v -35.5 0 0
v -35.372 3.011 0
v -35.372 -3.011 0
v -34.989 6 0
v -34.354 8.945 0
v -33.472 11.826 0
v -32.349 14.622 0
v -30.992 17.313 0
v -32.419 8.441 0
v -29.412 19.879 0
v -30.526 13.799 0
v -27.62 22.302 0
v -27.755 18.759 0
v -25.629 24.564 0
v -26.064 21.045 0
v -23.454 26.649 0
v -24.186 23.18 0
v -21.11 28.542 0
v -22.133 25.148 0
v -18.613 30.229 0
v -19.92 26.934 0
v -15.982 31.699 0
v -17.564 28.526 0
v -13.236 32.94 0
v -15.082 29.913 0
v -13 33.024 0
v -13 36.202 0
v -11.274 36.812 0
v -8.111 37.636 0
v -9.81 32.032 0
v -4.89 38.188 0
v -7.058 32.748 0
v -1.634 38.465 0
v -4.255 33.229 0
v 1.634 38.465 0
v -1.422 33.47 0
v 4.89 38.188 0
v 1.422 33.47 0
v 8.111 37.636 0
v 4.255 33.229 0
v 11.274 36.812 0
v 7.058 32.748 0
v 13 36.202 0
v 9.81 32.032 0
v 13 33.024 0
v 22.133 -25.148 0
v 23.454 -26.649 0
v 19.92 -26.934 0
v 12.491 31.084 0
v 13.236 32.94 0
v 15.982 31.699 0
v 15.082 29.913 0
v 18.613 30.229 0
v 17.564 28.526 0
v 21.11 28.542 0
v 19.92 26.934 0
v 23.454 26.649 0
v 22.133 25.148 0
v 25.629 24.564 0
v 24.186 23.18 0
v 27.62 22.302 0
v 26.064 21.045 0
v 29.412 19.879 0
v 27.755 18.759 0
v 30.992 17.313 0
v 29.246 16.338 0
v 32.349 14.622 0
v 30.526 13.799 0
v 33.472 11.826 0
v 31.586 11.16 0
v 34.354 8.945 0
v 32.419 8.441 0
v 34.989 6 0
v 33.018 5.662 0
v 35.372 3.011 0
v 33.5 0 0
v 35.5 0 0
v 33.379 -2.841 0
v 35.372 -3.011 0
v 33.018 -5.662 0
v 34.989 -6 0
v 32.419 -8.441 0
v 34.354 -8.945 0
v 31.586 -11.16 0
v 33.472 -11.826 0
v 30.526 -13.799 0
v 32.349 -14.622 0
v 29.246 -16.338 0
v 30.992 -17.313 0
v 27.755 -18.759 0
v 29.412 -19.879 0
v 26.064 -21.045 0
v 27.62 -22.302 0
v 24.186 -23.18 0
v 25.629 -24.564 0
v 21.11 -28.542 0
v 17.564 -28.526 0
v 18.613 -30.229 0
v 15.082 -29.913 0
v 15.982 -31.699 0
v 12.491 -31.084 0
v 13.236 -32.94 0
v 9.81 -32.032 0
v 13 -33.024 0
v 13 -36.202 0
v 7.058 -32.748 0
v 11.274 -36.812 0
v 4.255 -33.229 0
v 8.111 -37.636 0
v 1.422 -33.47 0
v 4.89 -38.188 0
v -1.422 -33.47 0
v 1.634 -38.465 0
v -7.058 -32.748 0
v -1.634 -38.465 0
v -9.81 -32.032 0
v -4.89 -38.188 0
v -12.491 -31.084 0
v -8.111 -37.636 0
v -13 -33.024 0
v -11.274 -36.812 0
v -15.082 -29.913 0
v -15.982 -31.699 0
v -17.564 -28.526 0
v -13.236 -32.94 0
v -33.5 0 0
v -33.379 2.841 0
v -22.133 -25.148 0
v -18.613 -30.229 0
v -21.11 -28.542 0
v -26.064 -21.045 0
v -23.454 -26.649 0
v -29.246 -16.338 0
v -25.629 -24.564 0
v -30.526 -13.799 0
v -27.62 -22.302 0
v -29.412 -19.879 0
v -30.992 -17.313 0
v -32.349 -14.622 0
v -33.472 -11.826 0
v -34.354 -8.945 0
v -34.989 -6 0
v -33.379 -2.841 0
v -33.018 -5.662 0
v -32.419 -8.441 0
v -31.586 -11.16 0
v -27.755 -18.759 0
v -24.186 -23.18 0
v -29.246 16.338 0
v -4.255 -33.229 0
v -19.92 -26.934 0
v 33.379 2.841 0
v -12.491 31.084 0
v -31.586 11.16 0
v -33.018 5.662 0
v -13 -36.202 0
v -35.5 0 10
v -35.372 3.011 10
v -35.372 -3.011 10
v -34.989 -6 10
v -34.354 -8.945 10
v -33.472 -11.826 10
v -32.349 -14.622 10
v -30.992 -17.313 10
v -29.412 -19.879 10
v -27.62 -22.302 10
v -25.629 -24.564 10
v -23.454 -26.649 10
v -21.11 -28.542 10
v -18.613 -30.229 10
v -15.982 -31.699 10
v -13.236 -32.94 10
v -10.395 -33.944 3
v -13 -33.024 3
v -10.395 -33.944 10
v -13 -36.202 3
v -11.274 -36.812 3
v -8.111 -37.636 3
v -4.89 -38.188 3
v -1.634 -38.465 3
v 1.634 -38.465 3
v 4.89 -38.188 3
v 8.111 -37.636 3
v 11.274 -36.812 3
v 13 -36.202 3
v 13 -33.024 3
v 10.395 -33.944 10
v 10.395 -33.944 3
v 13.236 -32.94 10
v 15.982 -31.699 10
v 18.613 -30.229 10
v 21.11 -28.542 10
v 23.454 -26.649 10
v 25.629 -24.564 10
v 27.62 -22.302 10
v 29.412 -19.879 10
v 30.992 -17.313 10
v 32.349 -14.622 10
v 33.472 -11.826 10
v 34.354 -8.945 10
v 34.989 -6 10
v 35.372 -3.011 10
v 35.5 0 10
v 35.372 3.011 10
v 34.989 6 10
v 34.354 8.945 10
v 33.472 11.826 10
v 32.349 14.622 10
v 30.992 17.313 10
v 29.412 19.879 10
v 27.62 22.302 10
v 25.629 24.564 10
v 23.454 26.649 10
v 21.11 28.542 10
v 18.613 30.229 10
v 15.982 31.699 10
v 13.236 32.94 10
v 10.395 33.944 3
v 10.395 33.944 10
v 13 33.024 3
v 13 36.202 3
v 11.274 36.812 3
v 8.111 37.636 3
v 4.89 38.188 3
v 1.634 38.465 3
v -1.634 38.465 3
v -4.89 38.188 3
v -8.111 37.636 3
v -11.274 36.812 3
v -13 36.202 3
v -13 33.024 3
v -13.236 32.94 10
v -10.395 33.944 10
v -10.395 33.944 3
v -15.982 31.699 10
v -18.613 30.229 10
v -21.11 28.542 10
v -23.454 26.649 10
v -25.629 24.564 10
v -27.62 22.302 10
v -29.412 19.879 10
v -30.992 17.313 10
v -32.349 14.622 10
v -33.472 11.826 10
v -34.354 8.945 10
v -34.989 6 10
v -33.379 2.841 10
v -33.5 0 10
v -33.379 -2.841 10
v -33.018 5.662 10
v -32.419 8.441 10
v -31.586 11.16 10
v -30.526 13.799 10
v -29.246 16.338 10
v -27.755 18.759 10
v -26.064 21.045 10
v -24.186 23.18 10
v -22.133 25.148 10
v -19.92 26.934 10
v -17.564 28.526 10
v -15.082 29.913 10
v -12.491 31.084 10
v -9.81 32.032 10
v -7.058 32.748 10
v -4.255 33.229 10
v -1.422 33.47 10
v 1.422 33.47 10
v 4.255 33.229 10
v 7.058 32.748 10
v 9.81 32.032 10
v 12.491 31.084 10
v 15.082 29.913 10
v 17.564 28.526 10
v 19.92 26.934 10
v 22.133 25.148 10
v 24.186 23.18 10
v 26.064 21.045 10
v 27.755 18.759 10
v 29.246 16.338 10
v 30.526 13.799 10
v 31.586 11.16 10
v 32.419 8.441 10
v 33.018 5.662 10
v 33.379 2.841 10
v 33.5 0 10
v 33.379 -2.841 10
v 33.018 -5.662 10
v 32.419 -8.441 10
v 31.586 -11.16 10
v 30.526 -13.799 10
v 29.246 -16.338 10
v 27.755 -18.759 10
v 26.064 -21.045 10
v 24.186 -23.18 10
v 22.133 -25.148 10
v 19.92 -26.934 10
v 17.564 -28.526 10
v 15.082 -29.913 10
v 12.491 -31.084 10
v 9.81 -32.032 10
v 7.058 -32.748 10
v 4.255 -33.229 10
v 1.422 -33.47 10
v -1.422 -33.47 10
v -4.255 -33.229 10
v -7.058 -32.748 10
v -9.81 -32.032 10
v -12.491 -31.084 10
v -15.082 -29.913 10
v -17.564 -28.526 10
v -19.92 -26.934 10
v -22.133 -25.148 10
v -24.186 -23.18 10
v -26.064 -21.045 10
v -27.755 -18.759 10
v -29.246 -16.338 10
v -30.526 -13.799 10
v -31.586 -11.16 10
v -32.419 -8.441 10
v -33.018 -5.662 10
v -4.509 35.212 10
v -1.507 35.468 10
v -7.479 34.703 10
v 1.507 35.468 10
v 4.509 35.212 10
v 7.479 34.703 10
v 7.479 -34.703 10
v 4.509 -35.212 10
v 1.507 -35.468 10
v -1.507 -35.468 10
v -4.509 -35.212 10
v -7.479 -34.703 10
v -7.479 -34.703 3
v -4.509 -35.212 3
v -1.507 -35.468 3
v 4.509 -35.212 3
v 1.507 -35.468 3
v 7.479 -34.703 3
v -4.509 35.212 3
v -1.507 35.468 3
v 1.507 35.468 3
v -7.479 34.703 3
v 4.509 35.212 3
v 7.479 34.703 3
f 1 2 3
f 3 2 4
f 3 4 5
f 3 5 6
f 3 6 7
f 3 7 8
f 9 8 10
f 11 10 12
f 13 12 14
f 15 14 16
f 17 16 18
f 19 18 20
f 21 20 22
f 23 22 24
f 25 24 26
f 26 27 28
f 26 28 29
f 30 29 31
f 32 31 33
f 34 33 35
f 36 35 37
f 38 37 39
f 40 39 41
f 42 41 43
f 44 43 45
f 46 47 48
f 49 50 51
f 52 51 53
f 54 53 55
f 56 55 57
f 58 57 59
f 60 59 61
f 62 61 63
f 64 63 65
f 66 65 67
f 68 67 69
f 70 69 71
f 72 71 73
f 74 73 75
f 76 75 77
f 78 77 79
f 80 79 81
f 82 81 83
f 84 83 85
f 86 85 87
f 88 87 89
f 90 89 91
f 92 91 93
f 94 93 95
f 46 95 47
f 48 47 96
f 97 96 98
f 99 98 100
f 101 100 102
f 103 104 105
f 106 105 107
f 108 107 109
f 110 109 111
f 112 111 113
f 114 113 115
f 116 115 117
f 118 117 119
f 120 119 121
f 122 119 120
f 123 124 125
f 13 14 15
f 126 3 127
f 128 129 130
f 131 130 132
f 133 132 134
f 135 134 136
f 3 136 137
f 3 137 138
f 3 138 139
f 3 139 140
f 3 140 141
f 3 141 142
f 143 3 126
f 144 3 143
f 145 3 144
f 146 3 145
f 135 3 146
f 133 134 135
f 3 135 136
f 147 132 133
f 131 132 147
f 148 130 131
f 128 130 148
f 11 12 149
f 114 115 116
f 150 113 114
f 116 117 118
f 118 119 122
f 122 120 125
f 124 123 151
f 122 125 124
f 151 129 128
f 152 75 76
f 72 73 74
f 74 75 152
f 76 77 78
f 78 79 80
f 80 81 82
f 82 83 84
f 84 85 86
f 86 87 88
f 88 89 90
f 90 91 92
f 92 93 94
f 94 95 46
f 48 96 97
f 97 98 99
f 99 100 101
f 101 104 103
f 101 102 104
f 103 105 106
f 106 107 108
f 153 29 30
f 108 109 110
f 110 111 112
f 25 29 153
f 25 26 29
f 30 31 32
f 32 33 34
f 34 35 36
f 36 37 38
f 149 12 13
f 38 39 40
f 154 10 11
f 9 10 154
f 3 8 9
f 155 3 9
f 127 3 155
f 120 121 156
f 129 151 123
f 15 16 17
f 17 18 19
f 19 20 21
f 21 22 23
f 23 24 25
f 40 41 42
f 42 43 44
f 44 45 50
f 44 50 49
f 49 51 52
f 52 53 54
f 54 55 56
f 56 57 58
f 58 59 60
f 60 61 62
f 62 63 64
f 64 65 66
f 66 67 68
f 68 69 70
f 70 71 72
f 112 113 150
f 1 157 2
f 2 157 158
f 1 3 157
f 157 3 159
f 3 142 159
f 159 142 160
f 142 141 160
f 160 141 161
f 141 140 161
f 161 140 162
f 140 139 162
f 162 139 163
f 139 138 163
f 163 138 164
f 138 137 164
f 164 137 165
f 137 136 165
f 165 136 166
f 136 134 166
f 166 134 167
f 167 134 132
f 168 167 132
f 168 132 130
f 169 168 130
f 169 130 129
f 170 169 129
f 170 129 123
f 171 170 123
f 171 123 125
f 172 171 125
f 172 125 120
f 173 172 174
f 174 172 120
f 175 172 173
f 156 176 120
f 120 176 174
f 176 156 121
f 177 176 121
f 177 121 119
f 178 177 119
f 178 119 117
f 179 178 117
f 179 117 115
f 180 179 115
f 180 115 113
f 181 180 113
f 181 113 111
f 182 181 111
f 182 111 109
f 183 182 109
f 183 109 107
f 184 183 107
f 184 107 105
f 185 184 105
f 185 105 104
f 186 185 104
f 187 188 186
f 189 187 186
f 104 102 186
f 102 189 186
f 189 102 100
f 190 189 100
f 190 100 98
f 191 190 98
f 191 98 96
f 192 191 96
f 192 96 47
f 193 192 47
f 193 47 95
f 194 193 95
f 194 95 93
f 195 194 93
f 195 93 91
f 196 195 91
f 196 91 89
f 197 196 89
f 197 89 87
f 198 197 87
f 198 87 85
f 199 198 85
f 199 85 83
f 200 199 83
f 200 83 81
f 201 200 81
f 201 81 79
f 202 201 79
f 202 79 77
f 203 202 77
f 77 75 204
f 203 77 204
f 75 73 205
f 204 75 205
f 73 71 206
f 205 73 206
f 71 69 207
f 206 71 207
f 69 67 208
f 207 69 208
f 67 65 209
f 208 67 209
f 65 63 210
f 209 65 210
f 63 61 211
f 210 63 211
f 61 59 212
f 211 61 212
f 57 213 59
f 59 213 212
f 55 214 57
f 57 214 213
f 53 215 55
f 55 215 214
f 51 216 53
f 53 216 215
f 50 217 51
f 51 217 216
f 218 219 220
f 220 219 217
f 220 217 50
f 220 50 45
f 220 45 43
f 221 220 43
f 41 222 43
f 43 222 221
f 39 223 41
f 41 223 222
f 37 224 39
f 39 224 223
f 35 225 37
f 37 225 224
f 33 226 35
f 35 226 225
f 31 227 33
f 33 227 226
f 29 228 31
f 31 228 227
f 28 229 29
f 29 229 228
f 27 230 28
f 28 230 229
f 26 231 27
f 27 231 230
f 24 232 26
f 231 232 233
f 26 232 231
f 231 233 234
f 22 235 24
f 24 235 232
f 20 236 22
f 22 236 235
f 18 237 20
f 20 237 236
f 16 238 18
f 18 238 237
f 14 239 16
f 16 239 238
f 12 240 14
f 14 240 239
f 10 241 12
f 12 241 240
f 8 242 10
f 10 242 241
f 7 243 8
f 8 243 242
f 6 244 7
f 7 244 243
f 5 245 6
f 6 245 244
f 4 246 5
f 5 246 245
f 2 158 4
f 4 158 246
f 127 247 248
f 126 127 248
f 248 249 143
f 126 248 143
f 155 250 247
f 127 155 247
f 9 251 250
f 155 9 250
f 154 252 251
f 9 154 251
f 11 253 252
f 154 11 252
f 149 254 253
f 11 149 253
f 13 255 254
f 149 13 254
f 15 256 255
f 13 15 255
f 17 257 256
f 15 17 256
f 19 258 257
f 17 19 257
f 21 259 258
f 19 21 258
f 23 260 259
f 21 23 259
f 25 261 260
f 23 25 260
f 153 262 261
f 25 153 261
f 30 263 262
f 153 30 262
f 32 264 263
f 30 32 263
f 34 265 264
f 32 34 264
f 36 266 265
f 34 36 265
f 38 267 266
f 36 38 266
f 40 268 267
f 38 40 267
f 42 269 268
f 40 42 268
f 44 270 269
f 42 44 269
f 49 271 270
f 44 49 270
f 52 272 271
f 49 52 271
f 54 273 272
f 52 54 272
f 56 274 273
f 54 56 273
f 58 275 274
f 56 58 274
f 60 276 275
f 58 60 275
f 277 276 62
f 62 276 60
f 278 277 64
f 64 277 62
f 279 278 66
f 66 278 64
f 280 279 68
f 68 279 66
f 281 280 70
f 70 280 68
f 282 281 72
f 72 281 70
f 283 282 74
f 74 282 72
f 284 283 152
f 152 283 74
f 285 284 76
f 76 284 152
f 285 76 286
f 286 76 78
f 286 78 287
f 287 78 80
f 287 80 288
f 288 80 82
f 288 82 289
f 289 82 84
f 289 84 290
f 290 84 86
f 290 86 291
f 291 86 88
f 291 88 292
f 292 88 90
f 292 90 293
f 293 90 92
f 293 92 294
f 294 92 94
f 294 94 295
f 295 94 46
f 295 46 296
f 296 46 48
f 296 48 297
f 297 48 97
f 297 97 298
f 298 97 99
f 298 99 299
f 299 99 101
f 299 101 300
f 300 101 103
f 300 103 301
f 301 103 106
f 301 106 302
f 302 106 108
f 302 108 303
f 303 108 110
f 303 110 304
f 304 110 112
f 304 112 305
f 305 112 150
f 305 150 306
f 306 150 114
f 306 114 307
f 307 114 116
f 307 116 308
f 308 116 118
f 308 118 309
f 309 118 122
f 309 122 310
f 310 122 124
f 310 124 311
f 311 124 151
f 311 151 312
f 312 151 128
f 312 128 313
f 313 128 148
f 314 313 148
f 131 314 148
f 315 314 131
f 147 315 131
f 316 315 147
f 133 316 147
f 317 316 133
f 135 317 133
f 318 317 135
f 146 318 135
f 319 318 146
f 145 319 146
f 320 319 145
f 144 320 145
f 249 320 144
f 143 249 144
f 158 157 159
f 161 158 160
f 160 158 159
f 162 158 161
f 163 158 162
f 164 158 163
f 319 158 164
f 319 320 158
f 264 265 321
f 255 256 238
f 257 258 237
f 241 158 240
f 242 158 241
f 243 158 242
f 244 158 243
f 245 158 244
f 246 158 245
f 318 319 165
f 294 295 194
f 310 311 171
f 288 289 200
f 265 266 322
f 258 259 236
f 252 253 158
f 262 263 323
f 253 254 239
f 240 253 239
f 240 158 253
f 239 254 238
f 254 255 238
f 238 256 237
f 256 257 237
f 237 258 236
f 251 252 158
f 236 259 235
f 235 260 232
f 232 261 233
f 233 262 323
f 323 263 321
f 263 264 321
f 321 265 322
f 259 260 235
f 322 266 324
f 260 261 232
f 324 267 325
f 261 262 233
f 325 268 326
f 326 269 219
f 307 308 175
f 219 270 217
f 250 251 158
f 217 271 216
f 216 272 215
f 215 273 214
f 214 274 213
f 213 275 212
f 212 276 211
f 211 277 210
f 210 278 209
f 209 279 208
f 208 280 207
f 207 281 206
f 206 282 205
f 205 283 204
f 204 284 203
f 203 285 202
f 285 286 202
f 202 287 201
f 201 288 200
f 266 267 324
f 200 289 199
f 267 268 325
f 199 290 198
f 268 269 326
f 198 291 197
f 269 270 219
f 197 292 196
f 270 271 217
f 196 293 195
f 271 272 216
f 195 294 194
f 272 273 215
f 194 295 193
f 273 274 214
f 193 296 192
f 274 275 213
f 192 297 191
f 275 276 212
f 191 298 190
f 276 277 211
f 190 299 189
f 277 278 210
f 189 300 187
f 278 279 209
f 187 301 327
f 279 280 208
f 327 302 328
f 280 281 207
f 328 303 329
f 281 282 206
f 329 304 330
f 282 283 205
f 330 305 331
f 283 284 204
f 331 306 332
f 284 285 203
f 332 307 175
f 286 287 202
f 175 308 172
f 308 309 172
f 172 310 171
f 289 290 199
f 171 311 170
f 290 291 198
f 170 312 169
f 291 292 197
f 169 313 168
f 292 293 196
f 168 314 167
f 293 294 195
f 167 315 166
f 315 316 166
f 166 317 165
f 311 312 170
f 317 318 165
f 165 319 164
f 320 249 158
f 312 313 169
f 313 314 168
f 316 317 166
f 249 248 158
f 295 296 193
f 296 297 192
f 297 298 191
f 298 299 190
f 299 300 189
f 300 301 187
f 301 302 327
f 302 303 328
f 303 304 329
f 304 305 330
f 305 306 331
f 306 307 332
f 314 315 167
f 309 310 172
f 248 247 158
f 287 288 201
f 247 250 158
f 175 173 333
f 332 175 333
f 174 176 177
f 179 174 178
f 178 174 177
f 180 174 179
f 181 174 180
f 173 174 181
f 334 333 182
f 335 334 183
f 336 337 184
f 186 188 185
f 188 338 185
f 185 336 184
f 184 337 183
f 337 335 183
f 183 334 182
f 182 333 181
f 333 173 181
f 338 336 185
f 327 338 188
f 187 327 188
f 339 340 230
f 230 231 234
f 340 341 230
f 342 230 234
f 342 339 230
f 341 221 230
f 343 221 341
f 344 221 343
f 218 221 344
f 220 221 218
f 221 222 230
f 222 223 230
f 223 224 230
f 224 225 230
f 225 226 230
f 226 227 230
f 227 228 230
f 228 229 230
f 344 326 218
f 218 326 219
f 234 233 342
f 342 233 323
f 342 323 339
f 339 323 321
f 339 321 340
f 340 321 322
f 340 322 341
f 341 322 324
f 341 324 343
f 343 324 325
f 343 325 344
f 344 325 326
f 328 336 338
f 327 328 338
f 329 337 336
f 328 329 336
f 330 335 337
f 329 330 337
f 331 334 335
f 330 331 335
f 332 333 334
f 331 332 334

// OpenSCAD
$fn=74;

difference()
{
	union()
	{
		cylinder(d=71, h=10);
		translate([-13,-40,0])
		cube([26,80,3]);
	}

	cylinder(d=67, h=10);

	difference()
	{
		cylinder(d=87, h=3);
		cylinder(d=77, h=3);
	}
}
